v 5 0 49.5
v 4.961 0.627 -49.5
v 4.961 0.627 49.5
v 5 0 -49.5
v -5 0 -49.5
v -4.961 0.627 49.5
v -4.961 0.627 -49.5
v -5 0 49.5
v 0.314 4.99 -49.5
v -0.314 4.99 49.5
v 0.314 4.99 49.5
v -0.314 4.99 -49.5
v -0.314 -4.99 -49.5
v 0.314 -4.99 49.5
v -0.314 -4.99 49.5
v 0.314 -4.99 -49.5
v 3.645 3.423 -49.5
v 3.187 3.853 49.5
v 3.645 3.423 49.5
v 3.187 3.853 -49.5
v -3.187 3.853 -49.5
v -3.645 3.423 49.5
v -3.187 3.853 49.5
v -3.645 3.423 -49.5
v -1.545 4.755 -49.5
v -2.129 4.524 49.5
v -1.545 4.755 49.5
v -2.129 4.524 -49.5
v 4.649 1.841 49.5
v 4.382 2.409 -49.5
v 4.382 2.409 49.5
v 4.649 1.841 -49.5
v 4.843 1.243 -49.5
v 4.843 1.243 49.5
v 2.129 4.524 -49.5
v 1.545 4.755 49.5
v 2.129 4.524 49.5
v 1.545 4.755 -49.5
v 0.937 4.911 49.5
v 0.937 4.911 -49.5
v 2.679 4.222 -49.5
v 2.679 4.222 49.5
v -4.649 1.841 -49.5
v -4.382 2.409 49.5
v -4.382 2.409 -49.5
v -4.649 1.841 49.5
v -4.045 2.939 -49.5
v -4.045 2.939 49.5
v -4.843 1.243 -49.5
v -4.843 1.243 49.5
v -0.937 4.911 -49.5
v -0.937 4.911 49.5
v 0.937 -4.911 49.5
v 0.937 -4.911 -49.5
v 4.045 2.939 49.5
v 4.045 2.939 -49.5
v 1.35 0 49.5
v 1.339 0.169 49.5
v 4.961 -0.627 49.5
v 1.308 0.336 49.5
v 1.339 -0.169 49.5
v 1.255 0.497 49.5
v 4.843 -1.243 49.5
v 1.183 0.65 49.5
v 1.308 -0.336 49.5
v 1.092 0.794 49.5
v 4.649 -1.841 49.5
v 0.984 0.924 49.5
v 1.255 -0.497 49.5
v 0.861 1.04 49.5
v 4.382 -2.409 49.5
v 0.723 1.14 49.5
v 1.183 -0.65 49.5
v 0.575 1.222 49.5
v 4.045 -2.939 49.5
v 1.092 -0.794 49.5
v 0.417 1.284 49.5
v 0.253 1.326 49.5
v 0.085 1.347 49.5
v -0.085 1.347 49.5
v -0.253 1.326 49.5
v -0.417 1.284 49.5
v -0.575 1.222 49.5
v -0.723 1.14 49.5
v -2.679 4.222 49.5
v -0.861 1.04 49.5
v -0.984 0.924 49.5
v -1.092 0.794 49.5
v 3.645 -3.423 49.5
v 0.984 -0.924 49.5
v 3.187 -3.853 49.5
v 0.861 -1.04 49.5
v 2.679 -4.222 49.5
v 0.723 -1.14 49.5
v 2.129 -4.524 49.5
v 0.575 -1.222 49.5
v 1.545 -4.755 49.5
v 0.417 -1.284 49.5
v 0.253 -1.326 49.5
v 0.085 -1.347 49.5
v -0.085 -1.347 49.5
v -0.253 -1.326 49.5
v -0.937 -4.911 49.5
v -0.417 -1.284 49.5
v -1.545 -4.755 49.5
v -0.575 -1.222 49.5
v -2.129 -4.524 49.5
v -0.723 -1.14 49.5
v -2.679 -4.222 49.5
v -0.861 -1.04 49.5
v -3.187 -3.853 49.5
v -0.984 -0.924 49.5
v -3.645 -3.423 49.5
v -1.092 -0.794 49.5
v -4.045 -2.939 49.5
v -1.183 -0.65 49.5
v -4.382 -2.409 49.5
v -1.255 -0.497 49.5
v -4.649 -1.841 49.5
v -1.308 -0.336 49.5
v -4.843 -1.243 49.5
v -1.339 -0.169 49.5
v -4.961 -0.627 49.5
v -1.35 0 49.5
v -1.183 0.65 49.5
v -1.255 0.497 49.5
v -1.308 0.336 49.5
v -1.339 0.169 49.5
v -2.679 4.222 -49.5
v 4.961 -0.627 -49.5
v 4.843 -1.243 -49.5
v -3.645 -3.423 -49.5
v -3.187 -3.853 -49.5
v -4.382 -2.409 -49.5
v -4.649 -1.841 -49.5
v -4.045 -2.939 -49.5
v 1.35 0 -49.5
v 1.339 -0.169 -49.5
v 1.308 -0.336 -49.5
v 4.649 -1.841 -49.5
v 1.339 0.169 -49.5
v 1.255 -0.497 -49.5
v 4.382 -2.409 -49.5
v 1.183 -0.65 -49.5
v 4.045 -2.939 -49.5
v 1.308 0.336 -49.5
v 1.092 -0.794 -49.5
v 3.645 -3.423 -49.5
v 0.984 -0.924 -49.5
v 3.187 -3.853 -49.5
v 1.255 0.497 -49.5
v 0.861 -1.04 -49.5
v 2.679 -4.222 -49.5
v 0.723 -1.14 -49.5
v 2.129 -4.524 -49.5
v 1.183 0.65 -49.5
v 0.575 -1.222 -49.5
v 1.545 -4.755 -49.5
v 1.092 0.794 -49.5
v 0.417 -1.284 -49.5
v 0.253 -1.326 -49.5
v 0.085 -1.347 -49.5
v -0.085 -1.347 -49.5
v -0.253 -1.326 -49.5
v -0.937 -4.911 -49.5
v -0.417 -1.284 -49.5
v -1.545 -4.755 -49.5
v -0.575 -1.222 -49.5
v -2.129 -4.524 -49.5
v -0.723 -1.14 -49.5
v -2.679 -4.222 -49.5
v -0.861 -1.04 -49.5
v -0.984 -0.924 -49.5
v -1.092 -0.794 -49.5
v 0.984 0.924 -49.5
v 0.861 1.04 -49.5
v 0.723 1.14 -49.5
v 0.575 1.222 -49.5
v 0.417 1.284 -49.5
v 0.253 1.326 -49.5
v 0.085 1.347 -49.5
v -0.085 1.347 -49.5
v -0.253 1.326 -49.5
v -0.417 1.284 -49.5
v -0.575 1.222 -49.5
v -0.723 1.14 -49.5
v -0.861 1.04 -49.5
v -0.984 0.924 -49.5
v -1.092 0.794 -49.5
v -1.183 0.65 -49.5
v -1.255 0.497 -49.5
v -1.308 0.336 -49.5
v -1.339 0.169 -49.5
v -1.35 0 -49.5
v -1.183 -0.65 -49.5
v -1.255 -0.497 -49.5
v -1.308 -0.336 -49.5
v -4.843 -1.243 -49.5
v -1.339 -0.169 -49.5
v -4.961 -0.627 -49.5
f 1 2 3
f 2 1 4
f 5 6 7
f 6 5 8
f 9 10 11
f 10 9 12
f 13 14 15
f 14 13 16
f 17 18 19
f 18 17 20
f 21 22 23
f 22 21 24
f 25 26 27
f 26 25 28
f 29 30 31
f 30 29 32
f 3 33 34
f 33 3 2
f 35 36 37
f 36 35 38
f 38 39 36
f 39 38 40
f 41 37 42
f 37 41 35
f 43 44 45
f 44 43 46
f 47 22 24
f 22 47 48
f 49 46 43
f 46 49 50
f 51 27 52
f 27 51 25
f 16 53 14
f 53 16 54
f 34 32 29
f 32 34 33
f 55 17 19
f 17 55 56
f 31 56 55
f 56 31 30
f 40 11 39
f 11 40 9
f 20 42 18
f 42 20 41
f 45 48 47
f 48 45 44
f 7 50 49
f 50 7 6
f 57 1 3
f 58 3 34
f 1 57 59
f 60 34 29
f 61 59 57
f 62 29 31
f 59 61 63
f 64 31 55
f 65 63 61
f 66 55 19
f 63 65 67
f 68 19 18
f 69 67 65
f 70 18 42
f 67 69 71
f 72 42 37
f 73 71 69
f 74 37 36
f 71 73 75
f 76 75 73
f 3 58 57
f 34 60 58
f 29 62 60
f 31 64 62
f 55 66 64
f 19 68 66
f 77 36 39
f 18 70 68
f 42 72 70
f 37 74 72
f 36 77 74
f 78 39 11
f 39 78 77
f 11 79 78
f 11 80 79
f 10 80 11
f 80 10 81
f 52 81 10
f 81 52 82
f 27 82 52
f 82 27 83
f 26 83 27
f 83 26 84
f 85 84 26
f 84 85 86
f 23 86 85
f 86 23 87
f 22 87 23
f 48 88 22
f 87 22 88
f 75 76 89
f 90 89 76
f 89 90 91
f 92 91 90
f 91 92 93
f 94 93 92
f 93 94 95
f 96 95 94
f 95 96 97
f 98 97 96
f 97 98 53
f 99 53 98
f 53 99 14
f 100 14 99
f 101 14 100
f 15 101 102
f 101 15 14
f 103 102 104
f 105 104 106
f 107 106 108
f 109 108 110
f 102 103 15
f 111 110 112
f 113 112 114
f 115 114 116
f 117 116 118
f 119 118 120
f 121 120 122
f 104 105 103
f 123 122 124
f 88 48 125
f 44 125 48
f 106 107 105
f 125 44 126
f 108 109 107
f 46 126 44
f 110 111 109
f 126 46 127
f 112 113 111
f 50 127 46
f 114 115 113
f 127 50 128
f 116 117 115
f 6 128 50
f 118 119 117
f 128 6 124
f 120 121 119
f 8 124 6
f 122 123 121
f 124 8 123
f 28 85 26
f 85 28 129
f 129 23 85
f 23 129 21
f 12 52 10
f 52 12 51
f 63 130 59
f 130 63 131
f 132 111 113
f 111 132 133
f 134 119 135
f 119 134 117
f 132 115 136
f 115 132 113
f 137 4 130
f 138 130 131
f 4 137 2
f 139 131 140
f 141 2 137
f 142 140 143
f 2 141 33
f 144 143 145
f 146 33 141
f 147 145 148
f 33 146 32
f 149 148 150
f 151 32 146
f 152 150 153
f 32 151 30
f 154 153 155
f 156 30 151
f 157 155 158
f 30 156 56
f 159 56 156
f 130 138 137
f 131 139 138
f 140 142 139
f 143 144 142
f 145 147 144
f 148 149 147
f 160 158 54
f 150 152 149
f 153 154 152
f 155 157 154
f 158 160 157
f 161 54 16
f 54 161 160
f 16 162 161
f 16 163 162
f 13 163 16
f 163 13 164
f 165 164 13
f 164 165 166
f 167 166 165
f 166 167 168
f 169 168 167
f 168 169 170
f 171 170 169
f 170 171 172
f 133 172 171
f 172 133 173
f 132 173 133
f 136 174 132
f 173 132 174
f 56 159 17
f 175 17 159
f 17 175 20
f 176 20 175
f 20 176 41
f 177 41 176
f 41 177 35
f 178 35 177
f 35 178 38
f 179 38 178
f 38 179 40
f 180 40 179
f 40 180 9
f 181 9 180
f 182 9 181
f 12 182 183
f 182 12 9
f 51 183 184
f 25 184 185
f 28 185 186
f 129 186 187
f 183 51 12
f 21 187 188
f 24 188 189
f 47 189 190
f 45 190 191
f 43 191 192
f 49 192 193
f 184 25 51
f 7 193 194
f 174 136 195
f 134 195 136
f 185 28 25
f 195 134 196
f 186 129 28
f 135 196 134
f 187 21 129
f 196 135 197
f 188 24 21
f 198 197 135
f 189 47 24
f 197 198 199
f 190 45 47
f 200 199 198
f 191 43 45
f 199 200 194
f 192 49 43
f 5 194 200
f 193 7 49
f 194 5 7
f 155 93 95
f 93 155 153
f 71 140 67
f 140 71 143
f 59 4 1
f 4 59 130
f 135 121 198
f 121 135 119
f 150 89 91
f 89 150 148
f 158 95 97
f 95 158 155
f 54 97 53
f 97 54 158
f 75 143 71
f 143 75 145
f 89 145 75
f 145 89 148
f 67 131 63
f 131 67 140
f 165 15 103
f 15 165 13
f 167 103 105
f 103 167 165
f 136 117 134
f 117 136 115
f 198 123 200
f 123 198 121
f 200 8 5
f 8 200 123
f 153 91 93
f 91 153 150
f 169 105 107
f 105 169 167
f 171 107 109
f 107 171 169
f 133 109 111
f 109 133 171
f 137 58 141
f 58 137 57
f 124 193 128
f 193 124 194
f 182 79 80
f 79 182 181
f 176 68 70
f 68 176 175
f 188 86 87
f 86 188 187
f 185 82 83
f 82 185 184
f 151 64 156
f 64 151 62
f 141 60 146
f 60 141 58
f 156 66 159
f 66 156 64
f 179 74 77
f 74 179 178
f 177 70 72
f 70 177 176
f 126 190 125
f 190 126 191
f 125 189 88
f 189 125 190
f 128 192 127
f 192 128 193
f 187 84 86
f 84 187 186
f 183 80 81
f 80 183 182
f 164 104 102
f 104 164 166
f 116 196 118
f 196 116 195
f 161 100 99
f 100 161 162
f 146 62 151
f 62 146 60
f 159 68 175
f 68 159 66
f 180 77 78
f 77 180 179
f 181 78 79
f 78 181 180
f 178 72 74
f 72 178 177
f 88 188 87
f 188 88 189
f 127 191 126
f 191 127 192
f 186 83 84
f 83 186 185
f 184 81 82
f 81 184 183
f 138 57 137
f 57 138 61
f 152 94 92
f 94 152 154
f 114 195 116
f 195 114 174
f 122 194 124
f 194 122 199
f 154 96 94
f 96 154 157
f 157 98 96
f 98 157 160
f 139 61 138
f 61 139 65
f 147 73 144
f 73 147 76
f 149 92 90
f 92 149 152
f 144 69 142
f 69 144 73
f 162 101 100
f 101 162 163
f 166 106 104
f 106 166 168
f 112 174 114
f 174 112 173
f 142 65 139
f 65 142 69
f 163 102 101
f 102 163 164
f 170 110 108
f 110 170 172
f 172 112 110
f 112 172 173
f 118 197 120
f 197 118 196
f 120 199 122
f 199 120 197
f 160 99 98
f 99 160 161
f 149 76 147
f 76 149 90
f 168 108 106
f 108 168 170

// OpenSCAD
$fn = 50;


difference() {
	union() {
		translate(v = [0, 0, -49.5000000000]) {
			cylinder(h = 99, r = 5.0000000000);
		}
	}
	union() {
		translate(v = [0, 0, -100.0000000000]) {
			cylinder(h = 200, r = 1.3500000000);
		}
	}
}
